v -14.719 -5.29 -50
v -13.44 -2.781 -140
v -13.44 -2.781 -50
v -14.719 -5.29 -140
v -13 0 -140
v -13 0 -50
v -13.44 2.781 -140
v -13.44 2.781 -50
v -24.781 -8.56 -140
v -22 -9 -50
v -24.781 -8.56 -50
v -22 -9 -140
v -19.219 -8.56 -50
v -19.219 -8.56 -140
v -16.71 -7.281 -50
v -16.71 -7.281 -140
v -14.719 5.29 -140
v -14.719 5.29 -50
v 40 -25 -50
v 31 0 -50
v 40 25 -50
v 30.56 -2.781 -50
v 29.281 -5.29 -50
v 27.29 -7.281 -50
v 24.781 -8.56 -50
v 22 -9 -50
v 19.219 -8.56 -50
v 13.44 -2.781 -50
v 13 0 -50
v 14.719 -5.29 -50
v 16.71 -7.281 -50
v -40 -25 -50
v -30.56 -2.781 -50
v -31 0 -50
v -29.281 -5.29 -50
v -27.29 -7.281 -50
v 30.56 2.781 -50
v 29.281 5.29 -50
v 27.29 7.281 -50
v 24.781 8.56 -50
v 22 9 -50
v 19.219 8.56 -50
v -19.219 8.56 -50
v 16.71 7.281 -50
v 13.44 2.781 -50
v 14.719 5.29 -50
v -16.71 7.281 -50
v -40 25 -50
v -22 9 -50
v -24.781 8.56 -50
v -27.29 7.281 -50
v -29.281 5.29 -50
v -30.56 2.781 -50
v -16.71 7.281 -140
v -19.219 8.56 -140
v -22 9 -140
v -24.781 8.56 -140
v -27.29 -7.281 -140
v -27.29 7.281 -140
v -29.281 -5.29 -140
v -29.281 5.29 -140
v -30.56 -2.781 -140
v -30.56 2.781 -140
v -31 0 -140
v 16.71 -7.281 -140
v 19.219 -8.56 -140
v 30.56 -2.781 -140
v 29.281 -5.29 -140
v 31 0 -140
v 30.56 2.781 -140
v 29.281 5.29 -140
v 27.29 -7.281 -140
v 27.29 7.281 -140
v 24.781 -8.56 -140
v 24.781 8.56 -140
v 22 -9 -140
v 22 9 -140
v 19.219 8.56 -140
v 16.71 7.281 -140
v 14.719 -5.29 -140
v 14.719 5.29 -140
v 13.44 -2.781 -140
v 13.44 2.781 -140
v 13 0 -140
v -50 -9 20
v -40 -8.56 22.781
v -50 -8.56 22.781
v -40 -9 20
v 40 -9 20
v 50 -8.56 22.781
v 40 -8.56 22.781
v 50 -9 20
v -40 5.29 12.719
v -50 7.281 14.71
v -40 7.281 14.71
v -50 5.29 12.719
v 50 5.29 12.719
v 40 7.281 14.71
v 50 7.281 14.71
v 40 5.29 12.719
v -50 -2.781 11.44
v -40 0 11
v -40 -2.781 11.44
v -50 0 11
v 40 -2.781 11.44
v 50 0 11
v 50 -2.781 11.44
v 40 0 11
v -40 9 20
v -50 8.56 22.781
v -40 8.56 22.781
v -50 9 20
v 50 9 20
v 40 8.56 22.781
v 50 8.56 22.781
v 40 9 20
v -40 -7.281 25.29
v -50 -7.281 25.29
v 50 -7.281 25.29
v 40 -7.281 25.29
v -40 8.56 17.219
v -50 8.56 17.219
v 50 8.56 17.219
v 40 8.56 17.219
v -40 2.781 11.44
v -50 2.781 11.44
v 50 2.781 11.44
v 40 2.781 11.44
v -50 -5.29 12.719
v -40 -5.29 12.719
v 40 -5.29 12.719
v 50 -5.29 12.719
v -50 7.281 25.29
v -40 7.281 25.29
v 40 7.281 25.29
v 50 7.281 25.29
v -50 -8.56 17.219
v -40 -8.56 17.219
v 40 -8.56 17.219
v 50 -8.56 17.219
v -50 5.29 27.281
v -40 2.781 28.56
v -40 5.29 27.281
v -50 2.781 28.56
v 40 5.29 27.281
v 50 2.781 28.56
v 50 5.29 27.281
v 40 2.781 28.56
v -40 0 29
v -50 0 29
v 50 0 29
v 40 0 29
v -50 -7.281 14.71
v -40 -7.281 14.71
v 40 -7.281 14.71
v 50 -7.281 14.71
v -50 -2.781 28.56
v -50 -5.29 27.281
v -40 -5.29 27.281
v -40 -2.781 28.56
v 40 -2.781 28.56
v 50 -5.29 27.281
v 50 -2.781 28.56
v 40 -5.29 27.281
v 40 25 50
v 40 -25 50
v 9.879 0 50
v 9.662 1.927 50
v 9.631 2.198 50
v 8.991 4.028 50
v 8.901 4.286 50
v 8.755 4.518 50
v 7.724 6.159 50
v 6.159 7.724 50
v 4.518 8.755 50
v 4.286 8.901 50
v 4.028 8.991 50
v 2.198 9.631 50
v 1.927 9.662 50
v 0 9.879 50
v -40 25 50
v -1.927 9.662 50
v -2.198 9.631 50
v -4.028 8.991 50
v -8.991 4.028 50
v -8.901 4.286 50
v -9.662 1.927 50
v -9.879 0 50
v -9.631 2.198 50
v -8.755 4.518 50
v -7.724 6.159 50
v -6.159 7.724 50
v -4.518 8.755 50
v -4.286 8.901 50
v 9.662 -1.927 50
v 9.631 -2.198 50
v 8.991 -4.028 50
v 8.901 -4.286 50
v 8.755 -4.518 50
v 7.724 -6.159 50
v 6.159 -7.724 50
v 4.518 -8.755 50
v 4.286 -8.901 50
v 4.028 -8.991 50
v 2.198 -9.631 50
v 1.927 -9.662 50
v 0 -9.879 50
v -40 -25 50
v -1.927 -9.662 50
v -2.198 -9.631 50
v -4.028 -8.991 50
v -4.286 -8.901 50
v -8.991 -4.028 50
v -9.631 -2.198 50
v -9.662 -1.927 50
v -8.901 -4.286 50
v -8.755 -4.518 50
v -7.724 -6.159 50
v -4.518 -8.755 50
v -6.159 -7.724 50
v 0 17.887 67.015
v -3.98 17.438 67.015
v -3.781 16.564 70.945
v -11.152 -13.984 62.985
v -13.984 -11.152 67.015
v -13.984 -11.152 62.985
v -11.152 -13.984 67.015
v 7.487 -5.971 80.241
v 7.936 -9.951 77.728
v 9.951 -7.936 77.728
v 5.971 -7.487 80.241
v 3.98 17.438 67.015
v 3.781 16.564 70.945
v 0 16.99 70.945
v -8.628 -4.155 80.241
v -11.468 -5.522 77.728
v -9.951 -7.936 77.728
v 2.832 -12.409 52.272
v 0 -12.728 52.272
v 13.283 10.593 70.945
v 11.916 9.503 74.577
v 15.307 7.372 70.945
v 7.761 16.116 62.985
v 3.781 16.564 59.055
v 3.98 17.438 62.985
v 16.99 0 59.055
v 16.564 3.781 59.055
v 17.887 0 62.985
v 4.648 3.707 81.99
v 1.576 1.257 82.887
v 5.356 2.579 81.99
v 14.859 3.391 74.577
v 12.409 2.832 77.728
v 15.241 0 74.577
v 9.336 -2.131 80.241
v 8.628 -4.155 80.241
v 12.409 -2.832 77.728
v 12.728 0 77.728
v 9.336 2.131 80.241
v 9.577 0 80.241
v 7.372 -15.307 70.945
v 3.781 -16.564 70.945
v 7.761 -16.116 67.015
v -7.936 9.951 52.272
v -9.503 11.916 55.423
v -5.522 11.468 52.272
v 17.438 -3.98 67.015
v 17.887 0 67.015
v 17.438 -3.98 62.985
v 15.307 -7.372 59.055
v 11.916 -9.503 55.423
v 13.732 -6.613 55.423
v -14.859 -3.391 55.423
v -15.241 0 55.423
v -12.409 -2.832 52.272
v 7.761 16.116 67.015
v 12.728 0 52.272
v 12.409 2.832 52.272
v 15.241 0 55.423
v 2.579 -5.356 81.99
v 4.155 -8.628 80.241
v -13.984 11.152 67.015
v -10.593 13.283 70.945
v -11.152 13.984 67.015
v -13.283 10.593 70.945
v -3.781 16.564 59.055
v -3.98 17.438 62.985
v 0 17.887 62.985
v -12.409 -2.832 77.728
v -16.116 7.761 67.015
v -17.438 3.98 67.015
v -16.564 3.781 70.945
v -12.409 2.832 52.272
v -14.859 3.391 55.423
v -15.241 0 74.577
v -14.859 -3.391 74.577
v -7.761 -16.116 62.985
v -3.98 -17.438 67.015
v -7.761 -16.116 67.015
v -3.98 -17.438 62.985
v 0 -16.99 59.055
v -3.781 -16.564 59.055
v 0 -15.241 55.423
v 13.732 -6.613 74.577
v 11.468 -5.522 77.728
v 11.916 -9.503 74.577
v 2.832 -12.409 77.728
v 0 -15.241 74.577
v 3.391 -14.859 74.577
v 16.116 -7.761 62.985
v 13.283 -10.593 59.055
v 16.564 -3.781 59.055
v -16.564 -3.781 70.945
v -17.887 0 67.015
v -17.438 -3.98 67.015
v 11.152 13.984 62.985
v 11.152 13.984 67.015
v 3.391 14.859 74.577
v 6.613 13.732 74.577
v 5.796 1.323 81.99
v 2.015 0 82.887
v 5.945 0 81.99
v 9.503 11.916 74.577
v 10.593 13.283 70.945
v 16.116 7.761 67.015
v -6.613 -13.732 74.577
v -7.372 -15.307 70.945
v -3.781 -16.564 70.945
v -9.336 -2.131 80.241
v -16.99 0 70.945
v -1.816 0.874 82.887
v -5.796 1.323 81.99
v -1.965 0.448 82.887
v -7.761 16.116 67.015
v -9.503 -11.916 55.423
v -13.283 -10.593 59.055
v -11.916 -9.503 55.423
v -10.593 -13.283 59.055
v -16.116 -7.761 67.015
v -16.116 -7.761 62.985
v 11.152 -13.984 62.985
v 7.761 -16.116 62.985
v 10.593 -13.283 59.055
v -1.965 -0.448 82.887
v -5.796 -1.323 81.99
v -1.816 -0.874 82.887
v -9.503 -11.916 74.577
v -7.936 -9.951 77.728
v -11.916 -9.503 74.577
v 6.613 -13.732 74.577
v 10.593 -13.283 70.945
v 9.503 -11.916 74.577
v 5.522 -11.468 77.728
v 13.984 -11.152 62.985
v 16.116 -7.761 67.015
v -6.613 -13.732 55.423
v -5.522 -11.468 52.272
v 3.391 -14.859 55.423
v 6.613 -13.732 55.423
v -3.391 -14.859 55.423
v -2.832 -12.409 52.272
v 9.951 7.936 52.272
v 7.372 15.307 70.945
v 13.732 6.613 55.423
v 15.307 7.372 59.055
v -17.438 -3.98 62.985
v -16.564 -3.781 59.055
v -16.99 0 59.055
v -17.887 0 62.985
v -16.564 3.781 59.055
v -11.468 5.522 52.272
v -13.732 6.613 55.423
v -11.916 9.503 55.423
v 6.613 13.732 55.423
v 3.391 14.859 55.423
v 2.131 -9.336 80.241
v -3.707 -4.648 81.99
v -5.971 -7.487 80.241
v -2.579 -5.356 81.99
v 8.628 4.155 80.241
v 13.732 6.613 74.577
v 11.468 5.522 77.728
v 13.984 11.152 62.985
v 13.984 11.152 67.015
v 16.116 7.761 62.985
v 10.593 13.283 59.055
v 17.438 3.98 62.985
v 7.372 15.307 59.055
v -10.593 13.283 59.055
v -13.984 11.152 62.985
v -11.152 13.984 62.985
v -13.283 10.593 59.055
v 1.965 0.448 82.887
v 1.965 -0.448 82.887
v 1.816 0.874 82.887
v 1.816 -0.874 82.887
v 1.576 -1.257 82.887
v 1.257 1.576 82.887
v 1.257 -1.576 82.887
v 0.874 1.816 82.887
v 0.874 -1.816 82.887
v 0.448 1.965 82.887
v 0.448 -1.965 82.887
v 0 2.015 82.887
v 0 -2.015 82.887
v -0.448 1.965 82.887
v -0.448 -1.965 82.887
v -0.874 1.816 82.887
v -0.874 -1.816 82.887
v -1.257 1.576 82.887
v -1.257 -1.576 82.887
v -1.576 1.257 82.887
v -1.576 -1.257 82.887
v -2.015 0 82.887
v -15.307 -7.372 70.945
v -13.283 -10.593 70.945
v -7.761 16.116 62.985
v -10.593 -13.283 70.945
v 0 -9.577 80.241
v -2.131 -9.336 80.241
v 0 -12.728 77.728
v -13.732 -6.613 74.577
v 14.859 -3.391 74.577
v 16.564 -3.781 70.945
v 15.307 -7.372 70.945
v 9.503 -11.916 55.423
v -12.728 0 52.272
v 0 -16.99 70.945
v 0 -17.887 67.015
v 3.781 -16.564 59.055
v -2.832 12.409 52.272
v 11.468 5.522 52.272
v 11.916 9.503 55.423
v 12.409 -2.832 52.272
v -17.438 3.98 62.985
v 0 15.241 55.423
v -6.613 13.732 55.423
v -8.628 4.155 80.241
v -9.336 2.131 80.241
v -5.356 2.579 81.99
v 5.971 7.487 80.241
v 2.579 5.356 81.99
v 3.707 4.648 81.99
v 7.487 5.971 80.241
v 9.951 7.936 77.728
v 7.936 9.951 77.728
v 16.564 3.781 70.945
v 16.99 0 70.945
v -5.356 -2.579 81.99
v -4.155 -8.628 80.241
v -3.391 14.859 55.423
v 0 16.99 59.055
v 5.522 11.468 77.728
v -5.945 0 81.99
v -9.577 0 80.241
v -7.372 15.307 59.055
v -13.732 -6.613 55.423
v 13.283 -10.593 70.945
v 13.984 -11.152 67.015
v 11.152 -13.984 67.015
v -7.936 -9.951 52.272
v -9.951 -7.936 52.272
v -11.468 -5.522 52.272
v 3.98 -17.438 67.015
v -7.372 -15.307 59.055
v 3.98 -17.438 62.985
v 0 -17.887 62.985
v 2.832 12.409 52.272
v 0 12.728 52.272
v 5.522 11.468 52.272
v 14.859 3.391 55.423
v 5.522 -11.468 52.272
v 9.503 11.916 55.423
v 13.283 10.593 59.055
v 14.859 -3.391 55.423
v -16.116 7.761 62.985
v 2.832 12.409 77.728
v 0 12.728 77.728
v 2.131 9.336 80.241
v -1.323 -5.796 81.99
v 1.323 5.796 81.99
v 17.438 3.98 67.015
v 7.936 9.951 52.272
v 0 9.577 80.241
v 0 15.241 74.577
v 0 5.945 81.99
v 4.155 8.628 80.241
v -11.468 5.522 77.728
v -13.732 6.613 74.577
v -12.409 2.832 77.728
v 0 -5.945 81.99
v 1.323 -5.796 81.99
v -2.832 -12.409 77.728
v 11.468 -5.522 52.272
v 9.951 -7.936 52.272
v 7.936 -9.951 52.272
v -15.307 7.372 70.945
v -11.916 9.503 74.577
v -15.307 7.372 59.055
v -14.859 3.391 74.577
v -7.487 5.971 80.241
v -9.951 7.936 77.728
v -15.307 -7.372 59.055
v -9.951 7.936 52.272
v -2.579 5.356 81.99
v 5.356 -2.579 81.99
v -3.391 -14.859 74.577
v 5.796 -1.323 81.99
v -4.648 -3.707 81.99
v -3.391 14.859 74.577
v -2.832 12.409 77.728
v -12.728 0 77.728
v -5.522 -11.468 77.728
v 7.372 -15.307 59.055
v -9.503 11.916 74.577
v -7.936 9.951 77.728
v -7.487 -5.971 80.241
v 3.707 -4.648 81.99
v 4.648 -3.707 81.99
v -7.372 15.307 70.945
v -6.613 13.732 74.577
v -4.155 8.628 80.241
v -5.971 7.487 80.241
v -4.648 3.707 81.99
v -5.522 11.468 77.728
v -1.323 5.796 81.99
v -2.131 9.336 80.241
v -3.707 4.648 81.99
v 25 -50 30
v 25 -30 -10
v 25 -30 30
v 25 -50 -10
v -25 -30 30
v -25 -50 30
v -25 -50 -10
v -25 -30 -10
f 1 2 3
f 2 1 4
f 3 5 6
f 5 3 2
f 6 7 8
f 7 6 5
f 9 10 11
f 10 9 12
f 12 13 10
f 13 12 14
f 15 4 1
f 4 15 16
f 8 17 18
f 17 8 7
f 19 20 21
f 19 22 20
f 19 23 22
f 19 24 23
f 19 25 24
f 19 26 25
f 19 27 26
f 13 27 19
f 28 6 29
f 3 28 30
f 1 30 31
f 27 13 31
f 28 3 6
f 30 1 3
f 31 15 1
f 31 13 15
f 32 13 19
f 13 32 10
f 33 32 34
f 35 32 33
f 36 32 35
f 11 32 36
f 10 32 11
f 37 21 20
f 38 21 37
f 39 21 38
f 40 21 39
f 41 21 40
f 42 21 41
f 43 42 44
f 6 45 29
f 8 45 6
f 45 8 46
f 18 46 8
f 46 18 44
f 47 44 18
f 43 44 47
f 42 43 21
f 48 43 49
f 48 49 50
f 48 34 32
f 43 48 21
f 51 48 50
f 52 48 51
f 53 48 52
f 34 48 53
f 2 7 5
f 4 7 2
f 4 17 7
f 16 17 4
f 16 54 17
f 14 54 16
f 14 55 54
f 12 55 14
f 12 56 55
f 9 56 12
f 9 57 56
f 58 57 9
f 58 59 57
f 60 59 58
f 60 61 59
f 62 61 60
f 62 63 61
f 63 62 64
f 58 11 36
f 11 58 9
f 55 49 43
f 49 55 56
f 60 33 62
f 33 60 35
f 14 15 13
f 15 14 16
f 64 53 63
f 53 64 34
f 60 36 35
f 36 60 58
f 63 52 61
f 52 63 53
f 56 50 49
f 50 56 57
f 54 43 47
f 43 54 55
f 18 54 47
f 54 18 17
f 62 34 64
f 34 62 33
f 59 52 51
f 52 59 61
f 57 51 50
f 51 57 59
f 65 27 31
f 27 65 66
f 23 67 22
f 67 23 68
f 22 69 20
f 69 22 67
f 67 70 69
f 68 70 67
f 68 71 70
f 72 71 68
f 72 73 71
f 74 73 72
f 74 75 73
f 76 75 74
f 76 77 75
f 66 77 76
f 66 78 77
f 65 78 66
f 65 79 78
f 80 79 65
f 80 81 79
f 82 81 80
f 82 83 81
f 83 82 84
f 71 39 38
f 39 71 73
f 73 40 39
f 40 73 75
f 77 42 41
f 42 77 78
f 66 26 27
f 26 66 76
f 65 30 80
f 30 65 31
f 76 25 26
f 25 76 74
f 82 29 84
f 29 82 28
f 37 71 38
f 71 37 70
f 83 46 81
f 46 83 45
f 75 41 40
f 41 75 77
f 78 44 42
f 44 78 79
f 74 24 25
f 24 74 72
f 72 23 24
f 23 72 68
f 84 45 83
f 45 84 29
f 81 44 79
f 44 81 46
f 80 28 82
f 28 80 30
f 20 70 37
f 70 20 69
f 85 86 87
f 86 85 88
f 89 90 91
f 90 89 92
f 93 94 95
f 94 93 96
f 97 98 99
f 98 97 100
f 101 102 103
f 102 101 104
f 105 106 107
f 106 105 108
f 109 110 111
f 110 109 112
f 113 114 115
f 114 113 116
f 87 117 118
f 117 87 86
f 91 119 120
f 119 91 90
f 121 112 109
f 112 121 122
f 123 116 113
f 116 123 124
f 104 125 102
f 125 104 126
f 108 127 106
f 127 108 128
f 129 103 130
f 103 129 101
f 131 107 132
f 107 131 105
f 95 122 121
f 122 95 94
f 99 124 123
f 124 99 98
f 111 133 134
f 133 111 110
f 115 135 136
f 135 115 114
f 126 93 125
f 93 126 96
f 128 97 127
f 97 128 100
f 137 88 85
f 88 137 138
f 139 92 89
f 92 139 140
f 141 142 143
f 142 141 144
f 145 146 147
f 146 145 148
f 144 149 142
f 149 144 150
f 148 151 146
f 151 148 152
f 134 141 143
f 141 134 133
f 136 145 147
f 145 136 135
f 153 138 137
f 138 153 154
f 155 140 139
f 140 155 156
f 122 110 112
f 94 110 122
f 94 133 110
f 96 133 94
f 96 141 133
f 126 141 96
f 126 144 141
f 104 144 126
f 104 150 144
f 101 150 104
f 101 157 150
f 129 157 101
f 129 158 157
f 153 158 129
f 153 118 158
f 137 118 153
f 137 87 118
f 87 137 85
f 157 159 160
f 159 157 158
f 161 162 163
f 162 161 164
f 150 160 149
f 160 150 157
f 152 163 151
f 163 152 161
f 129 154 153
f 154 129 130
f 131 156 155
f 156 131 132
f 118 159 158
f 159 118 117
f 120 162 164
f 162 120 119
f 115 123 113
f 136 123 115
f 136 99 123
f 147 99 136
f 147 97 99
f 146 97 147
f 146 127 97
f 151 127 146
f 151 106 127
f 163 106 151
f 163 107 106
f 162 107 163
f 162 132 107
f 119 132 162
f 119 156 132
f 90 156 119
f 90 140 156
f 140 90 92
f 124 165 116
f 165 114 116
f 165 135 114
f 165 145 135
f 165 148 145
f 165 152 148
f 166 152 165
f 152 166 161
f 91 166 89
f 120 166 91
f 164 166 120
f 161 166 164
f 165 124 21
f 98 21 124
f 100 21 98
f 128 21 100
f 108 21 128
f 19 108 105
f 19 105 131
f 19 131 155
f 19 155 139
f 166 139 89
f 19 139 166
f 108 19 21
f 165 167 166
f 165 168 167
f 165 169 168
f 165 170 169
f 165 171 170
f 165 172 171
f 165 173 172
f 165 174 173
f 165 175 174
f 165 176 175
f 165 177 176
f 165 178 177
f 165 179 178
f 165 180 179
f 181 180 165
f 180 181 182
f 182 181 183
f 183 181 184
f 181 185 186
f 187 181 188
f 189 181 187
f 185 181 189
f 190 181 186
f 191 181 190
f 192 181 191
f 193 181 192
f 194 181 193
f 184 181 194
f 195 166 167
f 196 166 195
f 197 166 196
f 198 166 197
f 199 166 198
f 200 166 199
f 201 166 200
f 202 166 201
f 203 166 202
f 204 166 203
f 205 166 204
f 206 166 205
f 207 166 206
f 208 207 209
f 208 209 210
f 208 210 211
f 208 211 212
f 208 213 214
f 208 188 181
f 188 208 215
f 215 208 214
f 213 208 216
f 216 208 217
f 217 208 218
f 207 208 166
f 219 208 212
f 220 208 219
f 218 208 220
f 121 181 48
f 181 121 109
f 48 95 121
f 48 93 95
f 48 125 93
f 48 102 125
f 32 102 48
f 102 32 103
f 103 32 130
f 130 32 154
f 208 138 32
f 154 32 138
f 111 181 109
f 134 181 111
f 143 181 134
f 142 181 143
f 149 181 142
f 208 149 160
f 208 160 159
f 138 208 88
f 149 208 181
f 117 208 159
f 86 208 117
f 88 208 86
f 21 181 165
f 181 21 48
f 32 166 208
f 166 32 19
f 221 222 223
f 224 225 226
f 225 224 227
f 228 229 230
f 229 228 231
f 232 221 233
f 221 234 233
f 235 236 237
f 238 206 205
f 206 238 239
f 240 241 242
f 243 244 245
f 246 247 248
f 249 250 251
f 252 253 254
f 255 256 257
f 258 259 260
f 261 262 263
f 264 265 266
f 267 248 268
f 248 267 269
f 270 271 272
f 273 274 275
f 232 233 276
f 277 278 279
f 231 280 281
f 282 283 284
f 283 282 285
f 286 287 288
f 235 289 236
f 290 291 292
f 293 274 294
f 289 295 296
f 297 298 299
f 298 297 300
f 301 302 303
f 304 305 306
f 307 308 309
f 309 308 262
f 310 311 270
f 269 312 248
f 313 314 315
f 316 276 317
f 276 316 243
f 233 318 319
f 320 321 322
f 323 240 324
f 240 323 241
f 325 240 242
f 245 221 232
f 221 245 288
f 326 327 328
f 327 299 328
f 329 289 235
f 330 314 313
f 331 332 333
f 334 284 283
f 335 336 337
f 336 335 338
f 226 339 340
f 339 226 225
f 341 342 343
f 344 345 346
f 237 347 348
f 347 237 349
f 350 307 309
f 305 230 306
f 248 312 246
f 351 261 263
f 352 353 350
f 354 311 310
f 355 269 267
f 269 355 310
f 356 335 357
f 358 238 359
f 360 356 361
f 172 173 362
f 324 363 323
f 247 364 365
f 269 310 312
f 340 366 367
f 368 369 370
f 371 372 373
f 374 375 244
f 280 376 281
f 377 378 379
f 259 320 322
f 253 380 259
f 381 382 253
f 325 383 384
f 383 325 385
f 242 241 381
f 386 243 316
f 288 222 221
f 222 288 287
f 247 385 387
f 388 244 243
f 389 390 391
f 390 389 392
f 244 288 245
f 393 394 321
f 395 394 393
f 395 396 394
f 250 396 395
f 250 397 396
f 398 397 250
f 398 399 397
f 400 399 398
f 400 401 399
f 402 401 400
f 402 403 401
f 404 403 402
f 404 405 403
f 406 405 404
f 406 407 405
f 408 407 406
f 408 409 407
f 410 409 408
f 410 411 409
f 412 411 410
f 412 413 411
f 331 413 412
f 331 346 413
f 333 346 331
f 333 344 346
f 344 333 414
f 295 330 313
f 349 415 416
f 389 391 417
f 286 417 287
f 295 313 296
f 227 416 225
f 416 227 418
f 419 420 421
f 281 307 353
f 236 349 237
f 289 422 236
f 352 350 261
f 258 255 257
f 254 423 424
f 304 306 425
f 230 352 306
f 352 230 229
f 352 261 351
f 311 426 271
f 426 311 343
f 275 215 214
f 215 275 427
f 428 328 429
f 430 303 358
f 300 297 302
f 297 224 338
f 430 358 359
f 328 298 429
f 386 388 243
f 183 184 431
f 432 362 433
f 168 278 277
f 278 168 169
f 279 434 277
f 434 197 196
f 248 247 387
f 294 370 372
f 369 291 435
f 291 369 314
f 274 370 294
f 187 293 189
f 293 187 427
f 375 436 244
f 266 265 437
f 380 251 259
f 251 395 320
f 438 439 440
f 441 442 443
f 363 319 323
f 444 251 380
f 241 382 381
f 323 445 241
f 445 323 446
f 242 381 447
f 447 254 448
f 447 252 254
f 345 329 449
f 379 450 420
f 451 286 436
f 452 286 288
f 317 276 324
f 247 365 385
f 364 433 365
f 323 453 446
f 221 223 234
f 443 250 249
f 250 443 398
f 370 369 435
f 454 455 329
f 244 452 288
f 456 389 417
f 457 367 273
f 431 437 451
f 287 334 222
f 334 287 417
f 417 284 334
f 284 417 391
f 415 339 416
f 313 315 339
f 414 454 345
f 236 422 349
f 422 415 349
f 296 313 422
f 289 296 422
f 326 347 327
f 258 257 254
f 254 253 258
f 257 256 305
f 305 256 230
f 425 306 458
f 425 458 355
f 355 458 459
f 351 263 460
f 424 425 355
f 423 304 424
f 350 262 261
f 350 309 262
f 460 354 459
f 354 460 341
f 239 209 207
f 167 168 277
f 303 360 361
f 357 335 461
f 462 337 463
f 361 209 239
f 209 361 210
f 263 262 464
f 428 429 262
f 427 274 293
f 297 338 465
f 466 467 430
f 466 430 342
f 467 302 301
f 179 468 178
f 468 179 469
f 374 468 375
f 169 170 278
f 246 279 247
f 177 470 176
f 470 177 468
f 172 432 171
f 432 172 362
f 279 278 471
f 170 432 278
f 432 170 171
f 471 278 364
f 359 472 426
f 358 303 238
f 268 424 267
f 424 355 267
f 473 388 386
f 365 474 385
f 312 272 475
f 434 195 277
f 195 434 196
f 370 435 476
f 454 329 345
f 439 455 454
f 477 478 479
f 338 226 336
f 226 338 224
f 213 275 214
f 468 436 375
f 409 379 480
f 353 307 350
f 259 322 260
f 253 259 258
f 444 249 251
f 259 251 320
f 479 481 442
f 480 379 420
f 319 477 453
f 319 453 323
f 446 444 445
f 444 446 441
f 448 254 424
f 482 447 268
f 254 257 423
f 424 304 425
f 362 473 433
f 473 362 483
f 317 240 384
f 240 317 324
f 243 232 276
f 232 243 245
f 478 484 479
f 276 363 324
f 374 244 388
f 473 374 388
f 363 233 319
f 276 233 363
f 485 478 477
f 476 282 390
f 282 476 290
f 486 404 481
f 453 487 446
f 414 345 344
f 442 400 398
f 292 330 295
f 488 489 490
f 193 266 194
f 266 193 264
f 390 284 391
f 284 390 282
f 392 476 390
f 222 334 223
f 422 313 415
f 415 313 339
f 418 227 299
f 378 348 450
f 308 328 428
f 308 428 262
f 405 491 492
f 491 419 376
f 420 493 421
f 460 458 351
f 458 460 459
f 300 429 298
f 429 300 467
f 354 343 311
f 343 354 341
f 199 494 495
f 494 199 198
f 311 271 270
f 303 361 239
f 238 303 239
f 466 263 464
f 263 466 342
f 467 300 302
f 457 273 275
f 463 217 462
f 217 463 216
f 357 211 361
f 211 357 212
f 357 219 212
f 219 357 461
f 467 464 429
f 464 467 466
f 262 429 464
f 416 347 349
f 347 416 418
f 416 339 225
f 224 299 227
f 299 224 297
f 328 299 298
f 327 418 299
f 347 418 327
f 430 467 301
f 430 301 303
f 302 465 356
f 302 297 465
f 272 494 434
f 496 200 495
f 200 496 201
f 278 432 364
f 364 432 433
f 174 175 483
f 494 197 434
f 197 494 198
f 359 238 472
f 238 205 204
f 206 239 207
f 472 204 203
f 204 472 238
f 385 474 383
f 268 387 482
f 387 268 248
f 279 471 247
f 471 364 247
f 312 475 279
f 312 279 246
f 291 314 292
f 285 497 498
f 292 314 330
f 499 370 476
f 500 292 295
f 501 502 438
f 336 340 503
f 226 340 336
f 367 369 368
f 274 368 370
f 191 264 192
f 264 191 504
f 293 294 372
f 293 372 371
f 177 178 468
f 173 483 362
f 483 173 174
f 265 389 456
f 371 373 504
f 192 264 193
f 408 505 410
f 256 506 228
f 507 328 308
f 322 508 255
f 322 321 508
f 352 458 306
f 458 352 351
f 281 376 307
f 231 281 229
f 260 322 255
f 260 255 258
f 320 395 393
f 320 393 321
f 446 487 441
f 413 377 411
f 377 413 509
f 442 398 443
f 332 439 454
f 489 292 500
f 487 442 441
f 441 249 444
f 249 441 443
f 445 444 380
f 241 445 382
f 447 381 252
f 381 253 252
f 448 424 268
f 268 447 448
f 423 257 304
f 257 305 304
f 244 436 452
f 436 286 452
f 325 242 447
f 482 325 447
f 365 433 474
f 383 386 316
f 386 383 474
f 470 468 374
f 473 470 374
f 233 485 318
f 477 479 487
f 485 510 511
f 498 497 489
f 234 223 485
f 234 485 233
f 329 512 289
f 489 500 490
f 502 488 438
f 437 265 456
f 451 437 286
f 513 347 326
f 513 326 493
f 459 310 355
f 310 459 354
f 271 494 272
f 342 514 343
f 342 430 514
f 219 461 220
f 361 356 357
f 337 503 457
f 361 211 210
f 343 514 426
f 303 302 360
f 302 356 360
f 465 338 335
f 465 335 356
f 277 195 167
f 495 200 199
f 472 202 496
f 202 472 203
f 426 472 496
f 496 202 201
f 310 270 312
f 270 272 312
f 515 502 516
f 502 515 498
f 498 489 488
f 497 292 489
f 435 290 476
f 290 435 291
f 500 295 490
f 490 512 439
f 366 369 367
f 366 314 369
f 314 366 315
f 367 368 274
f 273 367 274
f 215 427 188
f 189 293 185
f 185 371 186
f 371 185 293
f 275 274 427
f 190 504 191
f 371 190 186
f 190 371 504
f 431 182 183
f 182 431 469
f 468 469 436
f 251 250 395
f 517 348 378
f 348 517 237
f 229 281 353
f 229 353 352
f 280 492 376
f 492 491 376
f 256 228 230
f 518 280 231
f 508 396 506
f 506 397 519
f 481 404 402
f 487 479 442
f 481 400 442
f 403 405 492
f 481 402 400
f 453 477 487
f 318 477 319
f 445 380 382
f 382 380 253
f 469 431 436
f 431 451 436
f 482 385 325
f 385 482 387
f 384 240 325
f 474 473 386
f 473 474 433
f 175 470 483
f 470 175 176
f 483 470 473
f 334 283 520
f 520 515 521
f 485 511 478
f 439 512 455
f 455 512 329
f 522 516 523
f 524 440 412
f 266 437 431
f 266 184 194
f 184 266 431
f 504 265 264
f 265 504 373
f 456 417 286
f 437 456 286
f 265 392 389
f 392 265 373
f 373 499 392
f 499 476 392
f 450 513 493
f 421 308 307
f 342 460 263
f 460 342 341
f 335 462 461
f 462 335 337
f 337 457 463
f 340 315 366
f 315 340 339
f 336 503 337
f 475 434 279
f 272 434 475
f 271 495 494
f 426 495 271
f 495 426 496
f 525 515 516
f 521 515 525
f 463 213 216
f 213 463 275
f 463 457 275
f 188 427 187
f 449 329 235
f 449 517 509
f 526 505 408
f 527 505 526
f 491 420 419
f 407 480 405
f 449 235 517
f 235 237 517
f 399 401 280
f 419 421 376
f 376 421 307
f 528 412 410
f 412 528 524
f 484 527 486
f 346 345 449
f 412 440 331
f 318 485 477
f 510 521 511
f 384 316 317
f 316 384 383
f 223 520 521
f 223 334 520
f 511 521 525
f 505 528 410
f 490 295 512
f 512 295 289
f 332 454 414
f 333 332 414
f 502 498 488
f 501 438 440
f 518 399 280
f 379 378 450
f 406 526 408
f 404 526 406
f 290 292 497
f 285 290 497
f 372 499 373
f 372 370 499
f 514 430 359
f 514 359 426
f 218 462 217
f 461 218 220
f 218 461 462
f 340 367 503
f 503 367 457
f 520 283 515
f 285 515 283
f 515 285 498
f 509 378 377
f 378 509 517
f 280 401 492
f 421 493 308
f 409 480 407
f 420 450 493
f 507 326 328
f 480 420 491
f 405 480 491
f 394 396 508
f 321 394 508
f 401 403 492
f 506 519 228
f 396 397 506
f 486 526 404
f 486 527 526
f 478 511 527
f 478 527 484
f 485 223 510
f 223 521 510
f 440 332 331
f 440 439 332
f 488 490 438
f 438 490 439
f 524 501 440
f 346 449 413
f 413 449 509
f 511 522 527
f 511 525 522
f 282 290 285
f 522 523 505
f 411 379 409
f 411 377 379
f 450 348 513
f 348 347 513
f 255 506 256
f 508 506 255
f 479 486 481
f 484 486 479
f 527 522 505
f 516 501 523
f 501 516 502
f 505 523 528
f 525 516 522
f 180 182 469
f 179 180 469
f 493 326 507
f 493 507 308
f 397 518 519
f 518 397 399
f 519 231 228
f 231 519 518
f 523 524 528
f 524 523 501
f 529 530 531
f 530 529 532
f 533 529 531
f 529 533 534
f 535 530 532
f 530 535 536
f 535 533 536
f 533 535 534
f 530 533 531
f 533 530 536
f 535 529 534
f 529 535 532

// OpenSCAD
// ISM-MS-1 mobile suit frame + structural study — #46
// Units: mm. Torso + limbs + ghost spars / joints / board tray.
// Stores = inert mass boxes / pads only — no munition geometry.

module torso() {
    cube([80, 50, 100], center = true);
}

module head() {
    translate([0, 0, 65])
        sphere(d = 36, $fn = 28);
}

module limb(len) {
    cylinder(h = len, d = 18, $fn = 20);
}

module legs() {
    translate([-22, 0, -50]) rotate([180, 0, 0]) limb(90);
    translate([22, 0, -50]) rotate([180, 0, 0]) limb(90);
}

module arms() {
    translate([-50, 0, 20]) rotate([0, 90, 0]) limb(70);
    translate([50, 0, 20]) rotate([0, -90, 0]) limb(70);
}

module dorsal_inert_box() {
    // Inert stores mass box — packaging only
    translate([0, -40, 10])
        cube([50, 20, 40], center = true);
}

module torso_frame_spars() {
    for (x = [-20, 20])
        translate([x, 0, 0])
            cube([4, 10, 90], center = true);
}

module limb_spars() {
    translate([-22, 0, -95]) cylinder(h = 80, d = 6, $fn = 12);
    translate([22, 0, -95]) cylinder(h = 80, d = 6, $fn = 12);
}

module joint_stubs() {
    for (p = [[-22, 0, -50], [22, 0, -50], [-45, 0, 20], [45, 0, 20]])
        translate(p) sphere(d = 22, $fn = 20);
}

module armor_keepouts() {
    translate([0, 0, 0])
        cube([92, 58, 110], center = true);
}

module control_board_tray() {
    translate([0, 15, -10])
        cube([50, 30, 4], center = true);
}

module stores_hardpoint_pads() {
    translate([0, -52, 10])
        cube([40, 4, 30], center = true);
}

echo("#46: gundam structural study — spars/joints/tray; stores inert mass only");
torso();
head();
legs();
arms();
dorsal_inert_box();
%torso_frame_spars();
%limb_spars();
%joint_stubs();
%armor_keepouts();
%control_board_tray();
%stores_hardpoint_pads();
